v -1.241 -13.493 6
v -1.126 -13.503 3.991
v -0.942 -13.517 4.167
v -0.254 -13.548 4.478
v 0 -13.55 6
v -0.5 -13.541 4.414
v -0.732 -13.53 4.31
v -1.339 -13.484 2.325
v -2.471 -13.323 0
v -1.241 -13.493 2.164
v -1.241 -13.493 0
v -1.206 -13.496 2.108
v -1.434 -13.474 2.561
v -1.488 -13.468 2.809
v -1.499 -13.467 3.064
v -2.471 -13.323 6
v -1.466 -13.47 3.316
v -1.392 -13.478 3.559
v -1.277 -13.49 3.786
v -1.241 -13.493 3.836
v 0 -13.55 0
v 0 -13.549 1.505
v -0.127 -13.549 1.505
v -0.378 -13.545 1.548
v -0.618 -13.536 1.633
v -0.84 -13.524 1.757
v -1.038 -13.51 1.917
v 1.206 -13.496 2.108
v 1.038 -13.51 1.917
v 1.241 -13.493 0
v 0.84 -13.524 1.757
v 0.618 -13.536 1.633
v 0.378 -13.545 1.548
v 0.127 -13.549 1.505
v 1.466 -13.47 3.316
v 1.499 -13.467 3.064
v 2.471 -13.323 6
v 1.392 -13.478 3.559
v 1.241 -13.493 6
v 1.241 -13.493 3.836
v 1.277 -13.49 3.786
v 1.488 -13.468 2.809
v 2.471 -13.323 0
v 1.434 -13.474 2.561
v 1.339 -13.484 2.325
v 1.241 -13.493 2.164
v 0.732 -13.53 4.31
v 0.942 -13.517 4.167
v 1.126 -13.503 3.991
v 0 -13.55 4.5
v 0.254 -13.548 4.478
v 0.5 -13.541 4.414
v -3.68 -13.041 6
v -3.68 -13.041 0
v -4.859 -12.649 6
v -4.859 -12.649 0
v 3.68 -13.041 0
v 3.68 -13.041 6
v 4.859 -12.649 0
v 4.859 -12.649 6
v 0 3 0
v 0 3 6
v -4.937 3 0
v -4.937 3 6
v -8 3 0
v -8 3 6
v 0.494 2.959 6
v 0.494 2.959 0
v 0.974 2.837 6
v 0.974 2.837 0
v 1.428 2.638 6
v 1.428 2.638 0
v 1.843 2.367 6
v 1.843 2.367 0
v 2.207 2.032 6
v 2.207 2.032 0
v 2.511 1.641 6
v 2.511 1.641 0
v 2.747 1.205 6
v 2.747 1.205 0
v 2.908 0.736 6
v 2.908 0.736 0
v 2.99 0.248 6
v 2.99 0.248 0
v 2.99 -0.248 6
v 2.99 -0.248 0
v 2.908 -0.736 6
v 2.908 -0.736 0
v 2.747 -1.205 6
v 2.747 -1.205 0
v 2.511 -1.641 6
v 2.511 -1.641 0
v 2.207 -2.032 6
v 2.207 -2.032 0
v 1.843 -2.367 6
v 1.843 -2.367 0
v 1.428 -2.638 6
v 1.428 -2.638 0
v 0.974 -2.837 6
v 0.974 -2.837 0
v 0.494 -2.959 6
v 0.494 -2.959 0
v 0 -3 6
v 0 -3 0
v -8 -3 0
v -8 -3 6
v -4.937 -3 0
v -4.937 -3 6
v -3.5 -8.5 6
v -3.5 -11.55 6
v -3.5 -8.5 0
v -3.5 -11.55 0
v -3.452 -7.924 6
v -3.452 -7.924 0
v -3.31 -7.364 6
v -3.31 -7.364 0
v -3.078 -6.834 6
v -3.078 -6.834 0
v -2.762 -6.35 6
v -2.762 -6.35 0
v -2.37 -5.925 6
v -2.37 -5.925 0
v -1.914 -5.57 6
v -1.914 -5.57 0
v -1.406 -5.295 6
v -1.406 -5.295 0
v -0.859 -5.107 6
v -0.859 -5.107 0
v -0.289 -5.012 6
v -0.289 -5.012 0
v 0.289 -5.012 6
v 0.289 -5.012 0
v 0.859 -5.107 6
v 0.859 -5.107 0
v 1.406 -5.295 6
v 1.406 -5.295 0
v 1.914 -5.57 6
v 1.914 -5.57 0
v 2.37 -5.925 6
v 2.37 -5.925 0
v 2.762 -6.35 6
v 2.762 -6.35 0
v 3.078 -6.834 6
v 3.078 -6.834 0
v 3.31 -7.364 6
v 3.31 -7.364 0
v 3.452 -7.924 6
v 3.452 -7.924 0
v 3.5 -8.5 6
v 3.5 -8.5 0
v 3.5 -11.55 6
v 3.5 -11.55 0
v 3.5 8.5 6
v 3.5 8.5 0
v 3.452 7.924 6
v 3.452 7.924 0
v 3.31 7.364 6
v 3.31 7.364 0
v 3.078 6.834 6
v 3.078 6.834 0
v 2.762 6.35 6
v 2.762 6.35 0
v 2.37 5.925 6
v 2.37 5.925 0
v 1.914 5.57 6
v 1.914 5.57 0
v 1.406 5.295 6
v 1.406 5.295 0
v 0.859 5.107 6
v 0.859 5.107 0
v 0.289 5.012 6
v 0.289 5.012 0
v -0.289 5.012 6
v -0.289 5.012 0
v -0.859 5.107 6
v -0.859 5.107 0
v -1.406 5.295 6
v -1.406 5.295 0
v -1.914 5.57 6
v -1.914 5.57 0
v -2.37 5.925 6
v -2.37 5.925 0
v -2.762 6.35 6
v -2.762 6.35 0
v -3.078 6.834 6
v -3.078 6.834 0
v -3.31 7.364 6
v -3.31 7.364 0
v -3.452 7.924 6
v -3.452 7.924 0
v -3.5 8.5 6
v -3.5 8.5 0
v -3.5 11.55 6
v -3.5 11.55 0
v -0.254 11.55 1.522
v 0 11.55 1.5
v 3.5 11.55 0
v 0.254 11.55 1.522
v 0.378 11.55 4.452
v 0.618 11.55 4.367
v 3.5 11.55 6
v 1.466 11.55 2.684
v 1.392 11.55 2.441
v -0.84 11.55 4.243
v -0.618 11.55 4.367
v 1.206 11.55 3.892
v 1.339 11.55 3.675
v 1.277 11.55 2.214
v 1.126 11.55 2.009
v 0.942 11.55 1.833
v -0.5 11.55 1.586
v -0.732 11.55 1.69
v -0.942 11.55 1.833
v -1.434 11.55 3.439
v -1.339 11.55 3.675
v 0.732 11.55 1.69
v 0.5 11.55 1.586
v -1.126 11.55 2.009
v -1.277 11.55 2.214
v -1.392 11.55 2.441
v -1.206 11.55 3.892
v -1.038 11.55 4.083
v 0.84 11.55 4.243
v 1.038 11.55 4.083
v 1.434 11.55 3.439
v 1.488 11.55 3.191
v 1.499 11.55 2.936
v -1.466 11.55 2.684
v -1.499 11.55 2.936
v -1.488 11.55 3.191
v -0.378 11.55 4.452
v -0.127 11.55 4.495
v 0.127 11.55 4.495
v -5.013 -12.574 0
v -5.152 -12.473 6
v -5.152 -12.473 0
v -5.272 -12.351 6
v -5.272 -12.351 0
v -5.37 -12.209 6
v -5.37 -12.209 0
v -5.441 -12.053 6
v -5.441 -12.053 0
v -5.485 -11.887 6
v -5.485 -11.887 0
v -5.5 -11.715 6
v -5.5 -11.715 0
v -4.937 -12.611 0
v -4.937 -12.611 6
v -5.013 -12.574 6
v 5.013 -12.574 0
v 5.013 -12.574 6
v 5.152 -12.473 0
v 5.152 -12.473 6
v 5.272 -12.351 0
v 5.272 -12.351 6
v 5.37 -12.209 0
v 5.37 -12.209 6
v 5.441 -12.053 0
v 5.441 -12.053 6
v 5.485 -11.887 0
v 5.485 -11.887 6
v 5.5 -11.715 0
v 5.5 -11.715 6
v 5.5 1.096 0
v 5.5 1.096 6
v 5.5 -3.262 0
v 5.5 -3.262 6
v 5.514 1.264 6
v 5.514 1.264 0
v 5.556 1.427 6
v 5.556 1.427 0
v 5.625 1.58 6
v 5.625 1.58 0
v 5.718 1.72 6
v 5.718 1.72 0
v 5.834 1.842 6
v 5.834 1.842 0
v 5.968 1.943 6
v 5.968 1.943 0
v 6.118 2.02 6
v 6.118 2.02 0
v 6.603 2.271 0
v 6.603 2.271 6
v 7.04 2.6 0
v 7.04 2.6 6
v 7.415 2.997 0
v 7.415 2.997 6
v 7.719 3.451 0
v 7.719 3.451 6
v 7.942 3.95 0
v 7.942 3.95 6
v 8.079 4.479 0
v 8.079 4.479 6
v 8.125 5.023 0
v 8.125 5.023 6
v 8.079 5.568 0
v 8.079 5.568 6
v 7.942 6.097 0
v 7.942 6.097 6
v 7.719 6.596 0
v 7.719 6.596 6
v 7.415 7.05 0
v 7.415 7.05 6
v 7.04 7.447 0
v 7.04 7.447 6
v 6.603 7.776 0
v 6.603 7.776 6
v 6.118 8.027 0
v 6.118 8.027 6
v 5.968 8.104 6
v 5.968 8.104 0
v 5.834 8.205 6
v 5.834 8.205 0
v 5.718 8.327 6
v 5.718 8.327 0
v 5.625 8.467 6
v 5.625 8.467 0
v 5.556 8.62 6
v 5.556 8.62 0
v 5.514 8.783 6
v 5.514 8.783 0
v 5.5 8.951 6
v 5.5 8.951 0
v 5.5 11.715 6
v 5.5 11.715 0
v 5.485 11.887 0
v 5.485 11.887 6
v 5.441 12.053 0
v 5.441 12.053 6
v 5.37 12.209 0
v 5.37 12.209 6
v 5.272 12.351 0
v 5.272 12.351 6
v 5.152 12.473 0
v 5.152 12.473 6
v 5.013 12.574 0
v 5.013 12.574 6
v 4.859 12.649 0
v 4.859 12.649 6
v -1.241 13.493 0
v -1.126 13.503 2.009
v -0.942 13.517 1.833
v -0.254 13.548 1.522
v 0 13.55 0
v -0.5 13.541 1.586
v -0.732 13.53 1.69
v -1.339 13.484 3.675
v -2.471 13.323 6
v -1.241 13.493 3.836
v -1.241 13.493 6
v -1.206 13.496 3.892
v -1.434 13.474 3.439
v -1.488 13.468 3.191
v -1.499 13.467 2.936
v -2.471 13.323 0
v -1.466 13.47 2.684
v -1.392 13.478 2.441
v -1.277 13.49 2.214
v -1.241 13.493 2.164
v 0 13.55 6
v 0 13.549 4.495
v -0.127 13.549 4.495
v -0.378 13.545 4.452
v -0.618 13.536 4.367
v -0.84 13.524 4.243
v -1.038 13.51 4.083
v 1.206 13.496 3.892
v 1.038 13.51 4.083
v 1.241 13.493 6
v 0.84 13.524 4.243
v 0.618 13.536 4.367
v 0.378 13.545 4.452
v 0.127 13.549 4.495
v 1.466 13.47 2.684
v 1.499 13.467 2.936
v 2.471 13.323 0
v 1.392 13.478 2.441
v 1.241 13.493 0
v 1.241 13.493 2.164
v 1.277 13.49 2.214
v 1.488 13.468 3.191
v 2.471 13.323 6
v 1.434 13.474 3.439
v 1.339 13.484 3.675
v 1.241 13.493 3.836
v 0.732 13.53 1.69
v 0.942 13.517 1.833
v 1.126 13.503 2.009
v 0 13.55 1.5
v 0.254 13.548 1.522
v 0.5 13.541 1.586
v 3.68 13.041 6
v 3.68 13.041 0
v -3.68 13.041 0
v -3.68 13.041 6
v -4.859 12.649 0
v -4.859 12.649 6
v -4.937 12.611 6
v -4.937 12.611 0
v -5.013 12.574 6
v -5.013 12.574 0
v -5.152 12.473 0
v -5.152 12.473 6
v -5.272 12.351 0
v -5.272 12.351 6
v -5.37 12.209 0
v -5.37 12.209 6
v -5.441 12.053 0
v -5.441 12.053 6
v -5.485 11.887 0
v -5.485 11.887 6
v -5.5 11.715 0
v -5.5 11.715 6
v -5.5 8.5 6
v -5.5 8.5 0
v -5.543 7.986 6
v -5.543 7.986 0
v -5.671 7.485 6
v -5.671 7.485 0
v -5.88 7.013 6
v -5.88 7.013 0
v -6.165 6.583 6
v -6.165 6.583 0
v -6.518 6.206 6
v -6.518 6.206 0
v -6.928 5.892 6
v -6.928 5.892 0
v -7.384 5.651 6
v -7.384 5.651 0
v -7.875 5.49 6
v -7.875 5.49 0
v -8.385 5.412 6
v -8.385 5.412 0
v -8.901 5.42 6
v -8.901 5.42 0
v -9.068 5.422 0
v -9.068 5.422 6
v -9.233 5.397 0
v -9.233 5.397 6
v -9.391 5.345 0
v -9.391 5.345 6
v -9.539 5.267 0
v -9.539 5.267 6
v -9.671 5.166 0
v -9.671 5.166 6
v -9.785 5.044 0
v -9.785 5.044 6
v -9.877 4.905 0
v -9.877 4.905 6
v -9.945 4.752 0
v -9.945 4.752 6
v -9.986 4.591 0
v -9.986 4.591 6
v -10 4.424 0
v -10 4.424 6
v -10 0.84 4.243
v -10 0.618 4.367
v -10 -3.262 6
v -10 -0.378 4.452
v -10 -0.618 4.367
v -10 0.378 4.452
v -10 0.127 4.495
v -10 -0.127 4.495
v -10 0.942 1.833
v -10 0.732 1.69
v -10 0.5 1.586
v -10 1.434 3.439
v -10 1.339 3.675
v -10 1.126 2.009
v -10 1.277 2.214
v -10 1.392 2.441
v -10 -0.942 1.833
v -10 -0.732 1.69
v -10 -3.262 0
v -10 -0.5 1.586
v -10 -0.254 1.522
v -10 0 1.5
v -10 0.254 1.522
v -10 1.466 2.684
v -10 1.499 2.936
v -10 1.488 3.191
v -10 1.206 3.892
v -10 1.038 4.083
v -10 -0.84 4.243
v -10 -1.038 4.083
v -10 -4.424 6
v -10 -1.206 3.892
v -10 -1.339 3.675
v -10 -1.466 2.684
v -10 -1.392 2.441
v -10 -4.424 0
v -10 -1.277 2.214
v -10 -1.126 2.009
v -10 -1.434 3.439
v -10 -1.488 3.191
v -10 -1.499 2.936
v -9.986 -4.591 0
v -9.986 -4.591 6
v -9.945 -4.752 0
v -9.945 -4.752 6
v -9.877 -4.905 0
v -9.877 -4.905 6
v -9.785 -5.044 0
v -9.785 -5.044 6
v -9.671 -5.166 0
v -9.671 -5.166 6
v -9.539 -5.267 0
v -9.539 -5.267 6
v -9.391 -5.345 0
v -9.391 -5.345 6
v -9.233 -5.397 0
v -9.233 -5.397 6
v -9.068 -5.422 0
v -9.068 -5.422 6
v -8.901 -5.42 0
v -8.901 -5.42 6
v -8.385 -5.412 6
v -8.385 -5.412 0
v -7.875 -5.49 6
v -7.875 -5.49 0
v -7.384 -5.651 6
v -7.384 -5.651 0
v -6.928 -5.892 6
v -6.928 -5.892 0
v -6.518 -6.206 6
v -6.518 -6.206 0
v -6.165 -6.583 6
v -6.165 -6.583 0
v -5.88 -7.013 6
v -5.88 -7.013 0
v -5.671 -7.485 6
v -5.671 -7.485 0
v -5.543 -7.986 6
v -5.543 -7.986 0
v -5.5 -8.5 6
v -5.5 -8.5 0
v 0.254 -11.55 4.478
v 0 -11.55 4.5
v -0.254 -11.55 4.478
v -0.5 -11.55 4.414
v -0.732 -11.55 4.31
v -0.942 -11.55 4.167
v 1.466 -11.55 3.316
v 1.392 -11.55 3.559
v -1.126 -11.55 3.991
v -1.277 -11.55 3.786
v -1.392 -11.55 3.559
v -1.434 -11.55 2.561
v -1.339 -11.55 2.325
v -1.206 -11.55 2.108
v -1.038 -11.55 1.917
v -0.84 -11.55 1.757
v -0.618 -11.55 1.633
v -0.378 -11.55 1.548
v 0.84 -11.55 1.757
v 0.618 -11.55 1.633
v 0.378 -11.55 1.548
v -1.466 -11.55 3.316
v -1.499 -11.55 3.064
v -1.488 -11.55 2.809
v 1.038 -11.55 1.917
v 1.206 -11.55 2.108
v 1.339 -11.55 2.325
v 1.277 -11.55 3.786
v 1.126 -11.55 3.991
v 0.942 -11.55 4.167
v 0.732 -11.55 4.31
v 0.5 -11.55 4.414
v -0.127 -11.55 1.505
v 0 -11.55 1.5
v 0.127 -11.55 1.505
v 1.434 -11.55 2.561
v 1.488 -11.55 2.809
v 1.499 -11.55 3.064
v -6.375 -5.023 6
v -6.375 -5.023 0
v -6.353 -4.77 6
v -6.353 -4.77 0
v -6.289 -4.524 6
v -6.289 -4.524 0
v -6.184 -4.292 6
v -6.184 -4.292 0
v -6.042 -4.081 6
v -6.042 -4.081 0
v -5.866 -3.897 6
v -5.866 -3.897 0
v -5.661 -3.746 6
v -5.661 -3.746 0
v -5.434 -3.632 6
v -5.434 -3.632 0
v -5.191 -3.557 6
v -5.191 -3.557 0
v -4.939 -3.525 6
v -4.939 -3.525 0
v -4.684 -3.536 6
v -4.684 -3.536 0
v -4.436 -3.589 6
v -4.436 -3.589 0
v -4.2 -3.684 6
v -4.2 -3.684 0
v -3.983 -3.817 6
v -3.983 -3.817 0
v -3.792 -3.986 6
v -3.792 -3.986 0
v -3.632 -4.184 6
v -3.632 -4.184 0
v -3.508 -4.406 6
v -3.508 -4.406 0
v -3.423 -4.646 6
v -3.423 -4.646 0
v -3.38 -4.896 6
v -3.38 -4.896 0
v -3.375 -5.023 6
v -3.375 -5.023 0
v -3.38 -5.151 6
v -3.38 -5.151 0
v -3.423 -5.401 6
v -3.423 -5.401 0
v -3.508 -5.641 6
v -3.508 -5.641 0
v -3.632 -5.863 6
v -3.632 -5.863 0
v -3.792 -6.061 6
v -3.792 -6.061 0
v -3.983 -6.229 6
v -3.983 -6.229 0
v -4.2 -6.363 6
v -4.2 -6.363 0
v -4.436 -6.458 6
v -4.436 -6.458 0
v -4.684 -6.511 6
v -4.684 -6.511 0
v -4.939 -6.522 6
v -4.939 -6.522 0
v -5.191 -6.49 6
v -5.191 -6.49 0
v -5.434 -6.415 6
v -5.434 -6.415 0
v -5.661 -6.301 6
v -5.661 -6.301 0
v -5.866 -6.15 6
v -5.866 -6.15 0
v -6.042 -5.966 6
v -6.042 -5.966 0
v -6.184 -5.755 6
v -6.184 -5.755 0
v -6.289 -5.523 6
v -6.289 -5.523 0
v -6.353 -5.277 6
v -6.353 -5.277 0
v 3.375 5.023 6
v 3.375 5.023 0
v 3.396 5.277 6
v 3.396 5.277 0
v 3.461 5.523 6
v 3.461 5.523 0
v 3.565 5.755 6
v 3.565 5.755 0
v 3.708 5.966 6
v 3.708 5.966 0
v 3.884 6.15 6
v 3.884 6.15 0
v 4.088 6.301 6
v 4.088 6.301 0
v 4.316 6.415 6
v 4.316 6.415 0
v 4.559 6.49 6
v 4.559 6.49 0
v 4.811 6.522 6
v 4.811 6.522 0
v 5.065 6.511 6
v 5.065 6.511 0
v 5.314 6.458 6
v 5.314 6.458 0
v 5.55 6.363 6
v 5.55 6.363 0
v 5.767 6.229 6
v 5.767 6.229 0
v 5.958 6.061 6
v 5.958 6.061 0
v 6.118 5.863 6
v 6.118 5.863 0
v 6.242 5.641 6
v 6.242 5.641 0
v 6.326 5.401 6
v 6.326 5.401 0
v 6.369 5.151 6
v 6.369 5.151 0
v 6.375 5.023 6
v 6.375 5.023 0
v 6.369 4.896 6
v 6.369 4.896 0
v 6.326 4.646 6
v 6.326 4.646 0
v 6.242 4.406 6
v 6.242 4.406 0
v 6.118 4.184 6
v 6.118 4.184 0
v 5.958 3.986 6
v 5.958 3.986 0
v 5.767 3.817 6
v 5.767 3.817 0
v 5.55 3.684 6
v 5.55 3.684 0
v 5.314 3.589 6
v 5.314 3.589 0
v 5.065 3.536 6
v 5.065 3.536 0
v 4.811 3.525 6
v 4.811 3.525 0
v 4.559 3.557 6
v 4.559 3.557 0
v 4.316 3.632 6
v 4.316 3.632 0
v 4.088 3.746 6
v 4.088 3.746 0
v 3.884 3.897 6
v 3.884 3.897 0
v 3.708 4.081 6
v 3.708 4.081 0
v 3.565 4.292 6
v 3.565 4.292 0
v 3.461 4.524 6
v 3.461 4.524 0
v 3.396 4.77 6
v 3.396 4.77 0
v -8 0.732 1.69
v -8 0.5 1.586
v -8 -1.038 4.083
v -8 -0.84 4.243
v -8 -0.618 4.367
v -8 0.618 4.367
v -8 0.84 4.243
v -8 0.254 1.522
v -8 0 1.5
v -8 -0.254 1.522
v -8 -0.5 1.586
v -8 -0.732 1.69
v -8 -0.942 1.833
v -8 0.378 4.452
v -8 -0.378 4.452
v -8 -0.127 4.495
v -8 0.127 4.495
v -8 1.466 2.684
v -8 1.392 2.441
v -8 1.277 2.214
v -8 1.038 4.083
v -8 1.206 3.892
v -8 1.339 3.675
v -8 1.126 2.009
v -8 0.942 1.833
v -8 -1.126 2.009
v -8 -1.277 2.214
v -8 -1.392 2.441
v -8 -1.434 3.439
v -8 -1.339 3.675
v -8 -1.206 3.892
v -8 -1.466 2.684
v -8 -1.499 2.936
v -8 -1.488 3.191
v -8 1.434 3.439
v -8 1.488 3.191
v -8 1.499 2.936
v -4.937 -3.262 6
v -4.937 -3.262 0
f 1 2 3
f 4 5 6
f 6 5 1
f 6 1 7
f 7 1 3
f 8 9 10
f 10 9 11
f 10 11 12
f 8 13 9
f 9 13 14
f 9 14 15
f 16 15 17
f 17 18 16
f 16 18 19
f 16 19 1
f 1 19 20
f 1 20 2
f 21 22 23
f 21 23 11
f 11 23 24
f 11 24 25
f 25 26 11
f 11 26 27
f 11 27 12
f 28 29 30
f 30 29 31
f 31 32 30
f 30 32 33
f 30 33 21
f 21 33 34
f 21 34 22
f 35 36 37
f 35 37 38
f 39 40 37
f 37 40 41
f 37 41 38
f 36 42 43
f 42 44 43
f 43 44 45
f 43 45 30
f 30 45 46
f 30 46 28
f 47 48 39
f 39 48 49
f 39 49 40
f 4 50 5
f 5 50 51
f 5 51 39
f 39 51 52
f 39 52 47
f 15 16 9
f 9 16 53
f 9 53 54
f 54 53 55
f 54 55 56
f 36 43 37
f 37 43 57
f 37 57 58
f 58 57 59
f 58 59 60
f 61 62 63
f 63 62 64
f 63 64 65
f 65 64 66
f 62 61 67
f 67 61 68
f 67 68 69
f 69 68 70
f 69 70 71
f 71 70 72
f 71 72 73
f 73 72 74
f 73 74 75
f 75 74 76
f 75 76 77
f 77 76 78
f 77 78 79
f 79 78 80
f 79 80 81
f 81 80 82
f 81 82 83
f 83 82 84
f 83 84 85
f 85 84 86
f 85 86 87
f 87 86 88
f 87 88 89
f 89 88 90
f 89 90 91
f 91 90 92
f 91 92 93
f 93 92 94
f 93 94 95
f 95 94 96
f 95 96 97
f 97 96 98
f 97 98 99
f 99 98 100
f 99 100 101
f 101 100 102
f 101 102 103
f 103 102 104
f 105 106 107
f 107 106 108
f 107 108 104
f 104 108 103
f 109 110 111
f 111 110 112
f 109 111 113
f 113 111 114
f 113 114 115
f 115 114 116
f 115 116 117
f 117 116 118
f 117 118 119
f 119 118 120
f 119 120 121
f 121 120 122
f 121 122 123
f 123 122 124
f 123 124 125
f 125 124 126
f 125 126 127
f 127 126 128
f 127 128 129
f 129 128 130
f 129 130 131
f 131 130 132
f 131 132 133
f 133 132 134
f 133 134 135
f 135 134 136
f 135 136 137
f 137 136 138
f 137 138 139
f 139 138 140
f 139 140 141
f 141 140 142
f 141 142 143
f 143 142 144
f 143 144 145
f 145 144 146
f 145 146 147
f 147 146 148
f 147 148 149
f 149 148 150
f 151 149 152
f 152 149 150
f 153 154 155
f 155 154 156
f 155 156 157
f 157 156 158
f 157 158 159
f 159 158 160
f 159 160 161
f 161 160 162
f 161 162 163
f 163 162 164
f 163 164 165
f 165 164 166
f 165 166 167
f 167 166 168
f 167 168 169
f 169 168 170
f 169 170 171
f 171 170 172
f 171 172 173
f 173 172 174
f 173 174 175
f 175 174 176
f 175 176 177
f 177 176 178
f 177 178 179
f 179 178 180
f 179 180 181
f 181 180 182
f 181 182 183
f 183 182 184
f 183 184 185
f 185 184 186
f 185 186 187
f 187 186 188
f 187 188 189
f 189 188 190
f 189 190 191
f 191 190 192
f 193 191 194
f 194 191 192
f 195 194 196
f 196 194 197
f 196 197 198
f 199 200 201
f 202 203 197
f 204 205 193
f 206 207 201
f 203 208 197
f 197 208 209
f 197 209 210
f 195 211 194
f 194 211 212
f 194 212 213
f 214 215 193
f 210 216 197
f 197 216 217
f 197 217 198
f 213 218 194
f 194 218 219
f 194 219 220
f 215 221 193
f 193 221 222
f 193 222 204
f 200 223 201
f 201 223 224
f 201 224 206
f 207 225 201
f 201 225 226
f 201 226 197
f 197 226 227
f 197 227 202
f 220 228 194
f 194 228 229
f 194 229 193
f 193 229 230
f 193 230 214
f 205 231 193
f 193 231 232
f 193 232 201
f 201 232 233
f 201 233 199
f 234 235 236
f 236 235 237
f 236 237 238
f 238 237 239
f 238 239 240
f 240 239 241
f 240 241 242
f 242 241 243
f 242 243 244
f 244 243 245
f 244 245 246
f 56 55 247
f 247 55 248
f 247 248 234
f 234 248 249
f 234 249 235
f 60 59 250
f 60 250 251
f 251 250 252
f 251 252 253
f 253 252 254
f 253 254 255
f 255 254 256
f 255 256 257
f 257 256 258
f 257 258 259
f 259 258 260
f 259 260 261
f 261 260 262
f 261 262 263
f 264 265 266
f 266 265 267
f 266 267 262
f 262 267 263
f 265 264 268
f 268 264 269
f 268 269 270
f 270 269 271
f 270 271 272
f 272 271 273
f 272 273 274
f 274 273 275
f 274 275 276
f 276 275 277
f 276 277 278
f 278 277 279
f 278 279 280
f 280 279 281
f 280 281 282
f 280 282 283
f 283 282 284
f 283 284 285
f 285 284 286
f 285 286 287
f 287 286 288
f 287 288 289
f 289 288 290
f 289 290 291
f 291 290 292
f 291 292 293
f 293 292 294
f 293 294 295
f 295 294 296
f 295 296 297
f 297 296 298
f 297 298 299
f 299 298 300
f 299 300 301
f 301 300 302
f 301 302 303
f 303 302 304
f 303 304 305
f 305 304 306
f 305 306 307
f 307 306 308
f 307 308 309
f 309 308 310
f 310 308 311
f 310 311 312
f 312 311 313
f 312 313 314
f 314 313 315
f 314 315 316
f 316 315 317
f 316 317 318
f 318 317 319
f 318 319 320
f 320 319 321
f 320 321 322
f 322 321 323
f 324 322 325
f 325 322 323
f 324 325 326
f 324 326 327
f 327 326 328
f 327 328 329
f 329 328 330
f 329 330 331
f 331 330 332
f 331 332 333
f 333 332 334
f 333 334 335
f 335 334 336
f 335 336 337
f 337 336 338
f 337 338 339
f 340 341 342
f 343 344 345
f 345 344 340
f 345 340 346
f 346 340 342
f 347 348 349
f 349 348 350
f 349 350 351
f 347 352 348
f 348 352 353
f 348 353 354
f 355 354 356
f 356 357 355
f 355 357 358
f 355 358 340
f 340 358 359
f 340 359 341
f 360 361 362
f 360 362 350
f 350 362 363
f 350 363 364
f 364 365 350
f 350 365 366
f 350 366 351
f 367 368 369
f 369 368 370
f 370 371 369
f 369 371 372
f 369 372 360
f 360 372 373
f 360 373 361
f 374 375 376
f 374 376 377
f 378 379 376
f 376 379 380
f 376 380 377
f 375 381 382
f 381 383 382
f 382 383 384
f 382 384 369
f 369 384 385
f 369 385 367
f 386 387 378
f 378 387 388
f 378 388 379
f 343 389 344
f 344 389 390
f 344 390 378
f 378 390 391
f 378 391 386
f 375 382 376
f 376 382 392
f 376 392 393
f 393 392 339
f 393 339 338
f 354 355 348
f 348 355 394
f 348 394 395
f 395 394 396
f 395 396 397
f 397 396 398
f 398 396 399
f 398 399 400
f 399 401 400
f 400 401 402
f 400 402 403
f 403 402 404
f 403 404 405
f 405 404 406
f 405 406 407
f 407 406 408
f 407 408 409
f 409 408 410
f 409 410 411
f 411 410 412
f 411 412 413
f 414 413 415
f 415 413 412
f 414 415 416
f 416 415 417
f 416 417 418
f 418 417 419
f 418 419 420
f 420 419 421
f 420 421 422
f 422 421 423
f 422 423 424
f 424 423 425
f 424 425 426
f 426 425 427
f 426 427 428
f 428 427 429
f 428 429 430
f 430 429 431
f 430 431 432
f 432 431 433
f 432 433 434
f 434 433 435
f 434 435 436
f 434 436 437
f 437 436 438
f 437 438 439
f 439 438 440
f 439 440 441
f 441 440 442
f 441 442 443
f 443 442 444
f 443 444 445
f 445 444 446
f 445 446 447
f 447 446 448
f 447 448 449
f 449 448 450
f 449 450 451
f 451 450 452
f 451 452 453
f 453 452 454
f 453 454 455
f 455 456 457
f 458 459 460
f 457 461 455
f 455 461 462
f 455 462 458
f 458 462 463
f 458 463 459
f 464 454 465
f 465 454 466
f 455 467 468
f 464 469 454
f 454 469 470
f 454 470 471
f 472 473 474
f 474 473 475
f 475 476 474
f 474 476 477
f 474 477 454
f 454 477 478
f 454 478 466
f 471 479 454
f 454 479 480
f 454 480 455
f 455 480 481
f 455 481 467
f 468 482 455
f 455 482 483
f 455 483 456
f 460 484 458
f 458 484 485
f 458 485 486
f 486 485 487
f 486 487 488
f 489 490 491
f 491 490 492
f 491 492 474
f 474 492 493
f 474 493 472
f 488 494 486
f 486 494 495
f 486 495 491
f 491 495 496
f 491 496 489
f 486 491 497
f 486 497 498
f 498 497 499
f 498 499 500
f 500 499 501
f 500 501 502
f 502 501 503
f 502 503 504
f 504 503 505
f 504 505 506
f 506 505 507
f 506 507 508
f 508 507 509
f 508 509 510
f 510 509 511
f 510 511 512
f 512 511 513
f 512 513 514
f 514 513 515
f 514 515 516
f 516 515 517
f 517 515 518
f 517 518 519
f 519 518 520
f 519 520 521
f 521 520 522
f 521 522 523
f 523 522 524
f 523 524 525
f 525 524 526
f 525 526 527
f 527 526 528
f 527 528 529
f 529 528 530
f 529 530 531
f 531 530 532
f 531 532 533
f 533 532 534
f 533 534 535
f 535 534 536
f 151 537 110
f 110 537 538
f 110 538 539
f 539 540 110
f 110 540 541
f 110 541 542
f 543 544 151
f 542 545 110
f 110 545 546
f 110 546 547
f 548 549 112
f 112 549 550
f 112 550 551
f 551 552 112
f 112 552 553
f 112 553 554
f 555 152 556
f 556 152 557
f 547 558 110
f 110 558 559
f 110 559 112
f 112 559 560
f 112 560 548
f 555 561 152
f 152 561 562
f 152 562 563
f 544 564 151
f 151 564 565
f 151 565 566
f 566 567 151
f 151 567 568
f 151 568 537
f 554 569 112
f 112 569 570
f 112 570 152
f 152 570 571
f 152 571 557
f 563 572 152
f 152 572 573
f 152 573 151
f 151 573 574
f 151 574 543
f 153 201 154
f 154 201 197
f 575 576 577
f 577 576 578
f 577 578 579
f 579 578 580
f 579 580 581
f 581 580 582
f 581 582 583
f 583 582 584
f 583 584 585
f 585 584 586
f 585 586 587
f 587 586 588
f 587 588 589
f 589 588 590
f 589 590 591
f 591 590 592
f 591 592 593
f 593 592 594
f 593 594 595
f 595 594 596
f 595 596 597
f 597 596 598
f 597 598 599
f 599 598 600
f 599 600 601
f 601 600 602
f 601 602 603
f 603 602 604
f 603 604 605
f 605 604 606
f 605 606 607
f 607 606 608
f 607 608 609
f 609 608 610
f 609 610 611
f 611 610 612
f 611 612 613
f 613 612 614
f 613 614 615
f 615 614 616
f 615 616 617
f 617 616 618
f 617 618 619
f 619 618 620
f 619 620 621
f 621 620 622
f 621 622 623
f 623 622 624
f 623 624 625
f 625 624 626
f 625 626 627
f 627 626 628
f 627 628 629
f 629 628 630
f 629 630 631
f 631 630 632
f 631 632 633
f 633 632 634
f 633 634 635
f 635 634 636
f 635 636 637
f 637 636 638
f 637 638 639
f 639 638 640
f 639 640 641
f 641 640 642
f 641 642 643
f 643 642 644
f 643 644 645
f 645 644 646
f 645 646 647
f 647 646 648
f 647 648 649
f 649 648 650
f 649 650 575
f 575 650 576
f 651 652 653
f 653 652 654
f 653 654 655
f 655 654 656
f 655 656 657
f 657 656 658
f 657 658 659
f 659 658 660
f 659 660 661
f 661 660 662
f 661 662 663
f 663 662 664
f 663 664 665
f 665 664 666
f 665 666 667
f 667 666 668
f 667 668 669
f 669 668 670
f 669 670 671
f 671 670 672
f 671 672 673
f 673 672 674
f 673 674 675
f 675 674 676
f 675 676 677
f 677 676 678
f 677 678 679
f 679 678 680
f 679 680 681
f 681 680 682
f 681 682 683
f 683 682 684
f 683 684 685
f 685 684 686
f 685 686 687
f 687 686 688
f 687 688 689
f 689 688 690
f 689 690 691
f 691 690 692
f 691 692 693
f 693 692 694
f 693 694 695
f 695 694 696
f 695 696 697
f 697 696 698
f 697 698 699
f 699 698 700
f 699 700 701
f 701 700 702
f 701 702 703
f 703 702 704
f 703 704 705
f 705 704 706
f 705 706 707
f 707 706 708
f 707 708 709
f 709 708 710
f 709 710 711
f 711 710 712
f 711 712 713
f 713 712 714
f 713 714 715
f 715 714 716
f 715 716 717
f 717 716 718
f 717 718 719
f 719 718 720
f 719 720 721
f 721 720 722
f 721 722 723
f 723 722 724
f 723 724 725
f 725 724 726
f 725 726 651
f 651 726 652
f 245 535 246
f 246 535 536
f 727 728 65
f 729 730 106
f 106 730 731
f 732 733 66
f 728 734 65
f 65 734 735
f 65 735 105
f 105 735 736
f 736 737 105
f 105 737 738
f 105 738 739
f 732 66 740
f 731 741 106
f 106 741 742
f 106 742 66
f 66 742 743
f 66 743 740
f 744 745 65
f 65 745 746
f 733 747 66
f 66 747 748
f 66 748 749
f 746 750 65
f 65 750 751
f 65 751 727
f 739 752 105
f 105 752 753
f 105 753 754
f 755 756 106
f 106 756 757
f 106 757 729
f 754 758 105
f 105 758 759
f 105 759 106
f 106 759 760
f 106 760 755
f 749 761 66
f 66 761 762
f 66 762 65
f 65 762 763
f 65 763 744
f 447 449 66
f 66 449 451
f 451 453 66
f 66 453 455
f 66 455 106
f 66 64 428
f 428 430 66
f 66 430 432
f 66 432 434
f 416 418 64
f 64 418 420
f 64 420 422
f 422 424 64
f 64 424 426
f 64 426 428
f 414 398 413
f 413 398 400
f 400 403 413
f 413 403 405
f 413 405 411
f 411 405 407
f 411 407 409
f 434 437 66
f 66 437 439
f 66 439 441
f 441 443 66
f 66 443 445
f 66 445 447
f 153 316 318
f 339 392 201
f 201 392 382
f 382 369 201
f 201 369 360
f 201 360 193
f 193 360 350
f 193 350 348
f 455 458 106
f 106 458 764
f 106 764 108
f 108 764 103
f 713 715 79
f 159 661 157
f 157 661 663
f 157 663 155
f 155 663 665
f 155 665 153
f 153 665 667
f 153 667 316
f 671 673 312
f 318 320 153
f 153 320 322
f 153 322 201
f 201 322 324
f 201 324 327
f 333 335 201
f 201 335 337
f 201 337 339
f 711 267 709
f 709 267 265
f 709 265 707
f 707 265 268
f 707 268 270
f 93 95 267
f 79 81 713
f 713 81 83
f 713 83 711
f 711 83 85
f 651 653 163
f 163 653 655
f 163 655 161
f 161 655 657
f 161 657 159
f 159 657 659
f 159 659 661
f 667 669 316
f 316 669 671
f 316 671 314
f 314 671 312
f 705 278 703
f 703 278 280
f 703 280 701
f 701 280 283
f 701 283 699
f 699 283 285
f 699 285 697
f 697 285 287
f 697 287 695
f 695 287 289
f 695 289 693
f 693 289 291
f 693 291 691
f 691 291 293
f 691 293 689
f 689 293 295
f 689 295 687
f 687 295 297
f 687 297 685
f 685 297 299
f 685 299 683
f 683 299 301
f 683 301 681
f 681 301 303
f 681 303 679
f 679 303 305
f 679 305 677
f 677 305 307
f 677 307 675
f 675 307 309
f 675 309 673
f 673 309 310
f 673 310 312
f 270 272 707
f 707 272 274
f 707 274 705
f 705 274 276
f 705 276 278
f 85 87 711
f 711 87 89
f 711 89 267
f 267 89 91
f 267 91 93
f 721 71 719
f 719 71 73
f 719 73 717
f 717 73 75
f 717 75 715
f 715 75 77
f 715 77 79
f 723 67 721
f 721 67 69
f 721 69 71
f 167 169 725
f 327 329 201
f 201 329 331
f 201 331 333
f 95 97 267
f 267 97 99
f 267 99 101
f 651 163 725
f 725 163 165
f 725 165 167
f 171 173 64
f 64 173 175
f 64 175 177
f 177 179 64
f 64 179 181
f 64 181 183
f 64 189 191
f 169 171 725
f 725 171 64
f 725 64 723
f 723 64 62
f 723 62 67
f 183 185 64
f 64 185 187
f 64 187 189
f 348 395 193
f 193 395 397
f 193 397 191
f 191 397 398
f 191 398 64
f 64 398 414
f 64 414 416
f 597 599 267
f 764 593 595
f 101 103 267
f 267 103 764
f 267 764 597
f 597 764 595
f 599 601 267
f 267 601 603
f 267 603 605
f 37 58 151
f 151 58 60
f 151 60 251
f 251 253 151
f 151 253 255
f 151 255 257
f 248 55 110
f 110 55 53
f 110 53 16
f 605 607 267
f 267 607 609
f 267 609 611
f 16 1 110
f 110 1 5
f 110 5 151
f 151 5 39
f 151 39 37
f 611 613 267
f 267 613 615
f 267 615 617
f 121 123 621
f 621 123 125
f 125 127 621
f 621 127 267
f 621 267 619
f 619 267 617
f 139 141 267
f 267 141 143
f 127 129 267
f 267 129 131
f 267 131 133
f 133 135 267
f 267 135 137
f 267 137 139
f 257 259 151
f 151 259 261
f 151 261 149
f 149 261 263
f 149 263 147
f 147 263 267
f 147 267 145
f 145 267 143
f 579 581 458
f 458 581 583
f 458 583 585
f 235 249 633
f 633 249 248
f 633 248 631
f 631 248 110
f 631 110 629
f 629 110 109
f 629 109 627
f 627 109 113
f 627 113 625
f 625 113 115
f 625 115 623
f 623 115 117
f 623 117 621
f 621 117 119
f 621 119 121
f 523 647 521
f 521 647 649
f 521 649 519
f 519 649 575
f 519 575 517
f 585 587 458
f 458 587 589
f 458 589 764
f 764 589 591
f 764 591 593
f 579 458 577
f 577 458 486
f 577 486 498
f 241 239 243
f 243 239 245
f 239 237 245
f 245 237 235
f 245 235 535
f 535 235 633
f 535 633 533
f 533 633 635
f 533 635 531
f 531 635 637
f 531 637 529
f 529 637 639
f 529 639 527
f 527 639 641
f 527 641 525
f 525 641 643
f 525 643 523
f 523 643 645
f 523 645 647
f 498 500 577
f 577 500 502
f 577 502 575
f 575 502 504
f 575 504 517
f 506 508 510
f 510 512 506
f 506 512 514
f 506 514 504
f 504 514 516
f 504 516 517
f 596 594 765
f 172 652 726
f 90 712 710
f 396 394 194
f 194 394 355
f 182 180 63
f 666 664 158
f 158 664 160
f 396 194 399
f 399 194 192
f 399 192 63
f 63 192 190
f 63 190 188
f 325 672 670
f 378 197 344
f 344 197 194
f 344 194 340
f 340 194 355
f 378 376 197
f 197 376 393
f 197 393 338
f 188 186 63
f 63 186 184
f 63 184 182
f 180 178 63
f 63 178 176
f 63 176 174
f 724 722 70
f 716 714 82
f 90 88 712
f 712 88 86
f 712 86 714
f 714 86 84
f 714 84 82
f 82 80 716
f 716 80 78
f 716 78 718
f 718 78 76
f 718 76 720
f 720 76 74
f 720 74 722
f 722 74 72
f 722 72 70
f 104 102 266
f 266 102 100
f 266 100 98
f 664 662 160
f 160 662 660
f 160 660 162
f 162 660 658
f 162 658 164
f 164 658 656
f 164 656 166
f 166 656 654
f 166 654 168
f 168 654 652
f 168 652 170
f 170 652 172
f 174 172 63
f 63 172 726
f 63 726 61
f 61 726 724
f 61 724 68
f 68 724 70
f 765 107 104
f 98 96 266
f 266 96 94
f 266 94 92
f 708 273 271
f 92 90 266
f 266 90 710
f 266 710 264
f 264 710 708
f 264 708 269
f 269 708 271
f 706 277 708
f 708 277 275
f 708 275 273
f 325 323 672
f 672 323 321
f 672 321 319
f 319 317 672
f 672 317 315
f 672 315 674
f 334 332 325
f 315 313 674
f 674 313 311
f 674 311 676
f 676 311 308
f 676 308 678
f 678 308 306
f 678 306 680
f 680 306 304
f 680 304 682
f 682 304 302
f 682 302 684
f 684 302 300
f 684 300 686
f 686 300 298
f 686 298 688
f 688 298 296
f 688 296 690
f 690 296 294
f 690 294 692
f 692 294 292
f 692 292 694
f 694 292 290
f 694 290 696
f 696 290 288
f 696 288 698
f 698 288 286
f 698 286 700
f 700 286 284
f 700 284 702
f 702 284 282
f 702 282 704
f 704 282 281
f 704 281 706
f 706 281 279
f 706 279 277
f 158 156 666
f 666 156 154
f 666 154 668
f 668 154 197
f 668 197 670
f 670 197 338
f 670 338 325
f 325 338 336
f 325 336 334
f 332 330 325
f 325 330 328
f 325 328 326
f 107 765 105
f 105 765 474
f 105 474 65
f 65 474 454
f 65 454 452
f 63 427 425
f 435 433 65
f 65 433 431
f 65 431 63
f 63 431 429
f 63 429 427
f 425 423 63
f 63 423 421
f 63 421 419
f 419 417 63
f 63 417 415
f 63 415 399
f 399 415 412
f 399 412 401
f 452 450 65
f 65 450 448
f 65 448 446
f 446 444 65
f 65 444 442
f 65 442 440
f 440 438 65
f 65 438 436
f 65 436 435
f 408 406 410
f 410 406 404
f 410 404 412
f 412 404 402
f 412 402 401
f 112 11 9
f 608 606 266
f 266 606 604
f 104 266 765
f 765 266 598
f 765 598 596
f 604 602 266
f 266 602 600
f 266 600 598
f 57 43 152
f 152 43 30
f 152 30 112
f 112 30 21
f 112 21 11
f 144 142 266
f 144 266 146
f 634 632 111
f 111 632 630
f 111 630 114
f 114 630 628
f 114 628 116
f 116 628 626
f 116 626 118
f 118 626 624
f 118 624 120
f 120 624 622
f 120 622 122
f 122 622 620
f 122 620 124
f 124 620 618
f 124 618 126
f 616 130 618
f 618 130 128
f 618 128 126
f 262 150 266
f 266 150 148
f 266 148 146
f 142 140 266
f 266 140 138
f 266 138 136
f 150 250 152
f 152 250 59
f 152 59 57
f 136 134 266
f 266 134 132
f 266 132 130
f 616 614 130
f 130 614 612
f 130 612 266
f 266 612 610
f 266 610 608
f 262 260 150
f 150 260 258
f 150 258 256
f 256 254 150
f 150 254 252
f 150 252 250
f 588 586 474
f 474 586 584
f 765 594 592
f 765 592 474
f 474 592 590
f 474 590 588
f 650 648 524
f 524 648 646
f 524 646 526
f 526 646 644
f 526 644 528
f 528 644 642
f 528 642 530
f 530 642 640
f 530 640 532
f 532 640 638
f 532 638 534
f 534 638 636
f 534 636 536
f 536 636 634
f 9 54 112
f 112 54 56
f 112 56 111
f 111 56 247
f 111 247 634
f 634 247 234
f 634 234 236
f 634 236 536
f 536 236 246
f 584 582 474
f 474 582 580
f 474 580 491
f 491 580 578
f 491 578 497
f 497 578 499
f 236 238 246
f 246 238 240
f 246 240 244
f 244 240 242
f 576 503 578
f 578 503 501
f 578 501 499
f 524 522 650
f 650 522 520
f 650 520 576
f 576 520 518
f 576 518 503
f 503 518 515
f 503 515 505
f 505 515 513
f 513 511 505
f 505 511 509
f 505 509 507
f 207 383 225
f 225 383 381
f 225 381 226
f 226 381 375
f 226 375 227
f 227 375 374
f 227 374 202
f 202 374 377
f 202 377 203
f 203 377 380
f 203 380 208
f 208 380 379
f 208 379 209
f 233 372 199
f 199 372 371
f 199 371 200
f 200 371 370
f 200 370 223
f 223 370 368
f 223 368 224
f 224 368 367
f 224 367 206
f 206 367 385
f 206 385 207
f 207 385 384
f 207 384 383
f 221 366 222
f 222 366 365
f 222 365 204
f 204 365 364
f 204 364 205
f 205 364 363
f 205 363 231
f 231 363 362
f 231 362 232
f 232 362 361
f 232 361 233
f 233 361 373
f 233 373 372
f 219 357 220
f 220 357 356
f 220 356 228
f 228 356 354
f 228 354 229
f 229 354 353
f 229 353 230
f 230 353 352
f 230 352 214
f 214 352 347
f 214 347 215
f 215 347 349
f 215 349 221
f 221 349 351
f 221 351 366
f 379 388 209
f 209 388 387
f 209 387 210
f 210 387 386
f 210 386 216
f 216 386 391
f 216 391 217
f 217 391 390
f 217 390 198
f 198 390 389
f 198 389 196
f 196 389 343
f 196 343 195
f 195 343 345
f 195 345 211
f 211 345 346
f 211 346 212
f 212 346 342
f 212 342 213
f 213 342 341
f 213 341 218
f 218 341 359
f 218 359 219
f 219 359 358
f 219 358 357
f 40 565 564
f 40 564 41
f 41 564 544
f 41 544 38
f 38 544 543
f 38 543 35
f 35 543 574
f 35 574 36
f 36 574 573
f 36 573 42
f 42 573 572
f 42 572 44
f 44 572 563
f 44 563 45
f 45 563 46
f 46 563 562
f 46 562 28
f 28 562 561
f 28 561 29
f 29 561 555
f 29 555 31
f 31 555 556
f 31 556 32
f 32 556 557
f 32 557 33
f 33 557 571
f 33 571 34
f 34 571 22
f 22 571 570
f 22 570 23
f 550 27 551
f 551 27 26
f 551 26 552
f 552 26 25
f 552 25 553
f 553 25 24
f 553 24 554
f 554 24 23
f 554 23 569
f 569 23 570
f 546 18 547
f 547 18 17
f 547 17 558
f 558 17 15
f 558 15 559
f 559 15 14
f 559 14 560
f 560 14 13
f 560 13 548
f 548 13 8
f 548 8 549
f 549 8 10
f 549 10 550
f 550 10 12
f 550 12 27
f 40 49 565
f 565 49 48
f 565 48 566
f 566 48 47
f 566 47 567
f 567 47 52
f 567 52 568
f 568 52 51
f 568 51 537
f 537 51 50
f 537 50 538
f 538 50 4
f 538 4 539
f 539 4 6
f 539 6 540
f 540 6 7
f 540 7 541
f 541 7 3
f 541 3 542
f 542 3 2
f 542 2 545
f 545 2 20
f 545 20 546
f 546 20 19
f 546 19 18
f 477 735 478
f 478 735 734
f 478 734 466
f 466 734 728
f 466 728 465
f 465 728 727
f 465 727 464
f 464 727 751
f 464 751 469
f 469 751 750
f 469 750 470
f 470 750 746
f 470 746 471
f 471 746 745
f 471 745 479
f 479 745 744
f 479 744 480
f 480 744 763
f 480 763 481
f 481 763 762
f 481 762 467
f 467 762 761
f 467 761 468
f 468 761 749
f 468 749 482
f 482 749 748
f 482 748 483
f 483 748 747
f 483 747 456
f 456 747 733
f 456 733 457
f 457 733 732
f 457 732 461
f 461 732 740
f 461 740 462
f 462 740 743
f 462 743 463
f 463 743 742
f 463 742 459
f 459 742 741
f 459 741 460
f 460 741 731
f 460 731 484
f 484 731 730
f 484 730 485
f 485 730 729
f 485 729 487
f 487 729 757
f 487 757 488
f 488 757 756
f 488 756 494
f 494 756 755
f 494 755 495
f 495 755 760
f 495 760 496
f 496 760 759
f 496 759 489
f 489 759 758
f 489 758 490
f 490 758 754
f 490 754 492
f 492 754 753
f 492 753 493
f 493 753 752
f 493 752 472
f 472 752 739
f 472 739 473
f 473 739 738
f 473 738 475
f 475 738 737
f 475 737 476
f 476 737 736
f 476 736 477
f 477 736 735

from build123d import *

# Parameters (mm, degrees)
ESQUISSE1_R             = 1.5
BOSS_EXTRU_1_DEPTH      = 6
ESQUISSE2_R             = 1.5
ENL_V_MAT_EXTRU_1_DEPTH = 28.676885663
ESQUISSE3_R             = 1.5
ENL_V_MAT_EXTRU_2_DEPTH = 22.90010149


with BuildPart() as part:
    # Esquisse1 → Boss.-Extru.1 (new body)
    with BuildSketch(Plane.XY):
        with BuildLine():
            Line((-10, 4.424421769), (-10, -4.424421769))
            ThreePointArc((-10, -4.424421769), (-9.671289073, -5.165617412), (-8.901258038, -5.41953484))
            ThreePointArc((-8.901258038, -5.41953484), (-6.517555279, -6.205559881), (-5.5, -8.5))
            Line((-5.5, -8.5), (-5.5, -11.715481211))
            ThreePointArc((-5.5, -11.715481211), (-5.324186186, -12.281800142), (-4.858565737, -12.64898569))
            ThreePointArc((-4.858565737, -12.64898569), (0, -13.55), (4.858565737, -12.64898569))
            ThreePointArc((4.858565737, -12.64898569), (5.324186186, -12.281800142), (5.5, -11.715481211))
            Line((5.5, -11.715481211), (5.5, 1.096471453))
            ThreePointArc((5.5, 1.096471453), (5.66862168, 1.65217829), (6.117620177, 2.020476687))
            ThreePointArc((6.117620177, 2.020476687), (8.124885753, 5.023493695), (6.117620177, 8.026510703))
            ThreePointArc((6.117620177, 8.026510703), (5.66862168, 8.394809099), (5.5, 8.950515936))
            Line((5.5, 8.950515936), (5.5, 11.715481211))
            ThreePointArc((5.5, 11.715481211), (5.324186186, 12.281800142), (4.858565737, 12.64898569))
            ThreePointArc((4.858565737, 12.64898569), (0, 13.55), (-4.858565737, 12.64898569))
            ThreePointArc((-4.858565737, 12.64898569), (-5.324186186, 12.281800142), (-5.5, 11.715481211))
            Line((-5.5, 11.715481211), (-5.5, 8.5))
            ThreePointArc((-5.5, 8.5), (-6.517555279, 6.205559881), (-8.901258038, 5.41953484))
            ThreePointArc((-8.901258038, 5.41953484), (-9.671289073, 5.165617412), (-10, 4.424421769))
        make_face()
        with Locations((-4.874885753, -5.023493695)):
            Circle(ESQUISSE1_R, mode=Mode.SUBTRACT)
        with Locations((4.874885753, 5.023493695)):
            Circle(ESQUISSE1_R, mode=Mode.SUBTRACT)
        with BuildLine():
            Line((-3.5, 11.55), (3.5, 11.55))
            Line((3.5, 11.55), (3.5, 8.5))
            ThreePointArc((3.5, 8.5), (0, 5), (-3.5, 8.5))
            Line((-3.5, 8.5), (-3.5, 11.55))
        make_face(mode=Mode.SUBTRACT)
        with BuildLine():
            Line((-3.5, -11.55), (3.5, -11.55))
            Line((3.5, -11.55), (3.5, -8.5))
            ThreePointArc((3.5, -8.5), (0, -5), (-3.5, -8.5))
            Line((-3.5, -8.5), (-3.5, -11.55))
        make_face(mode=Mode.SUBTRACT)
        with BuildLine():
            Line((0, -3), (-8, -3))
            Line((-8, -3), (-8, 3))
            Line((-8, 3), (0, 3))
            ThreePointArc((0, 3), (3, 0), (0, -3))
        make_face(mode=Mode.SUBTRACT)
    extrude(amount=BOSS_EXTRU_1_DEPTH)

    # Esquisse2 → Enlèv. mat.-Extru.1 (cut, through all)
    with BuildSketch(Plane.XZ.offset(-11.55)):
        with Locations(Location((0, 3, 0), (0, 0, 270))):
            Circle(ESQUISSE2_R)
    enl_v_mat_extru_1 = extrude(amount=-ENL_V_MAT_EXTRU_1_DEPTH, mode=Mode.SUBTRACT)

    # Symétrie1: Enlèv. mat.-Extru.1 across plane
    add(enl_v_mat_extru_1.mirror(Plane.ZX), mode=Mode.SUBTRACT)

    # Esquisse3 → Enlèv. mat.-Extru.2 (cut, through all)
    with BuildSketch(Plane(origin=(-8, 0, 0), x_dir=(0, 0, -1), z_dir=(1, 0, 0))):
        with Locations((-3, 0)):
            Circle(ESQUISSE3_R)
    extrude(amount=-ENL_V_MAT_EXTRU_2_DEPTH, mode=Mode.SUBTRACT)


solid = part.part
